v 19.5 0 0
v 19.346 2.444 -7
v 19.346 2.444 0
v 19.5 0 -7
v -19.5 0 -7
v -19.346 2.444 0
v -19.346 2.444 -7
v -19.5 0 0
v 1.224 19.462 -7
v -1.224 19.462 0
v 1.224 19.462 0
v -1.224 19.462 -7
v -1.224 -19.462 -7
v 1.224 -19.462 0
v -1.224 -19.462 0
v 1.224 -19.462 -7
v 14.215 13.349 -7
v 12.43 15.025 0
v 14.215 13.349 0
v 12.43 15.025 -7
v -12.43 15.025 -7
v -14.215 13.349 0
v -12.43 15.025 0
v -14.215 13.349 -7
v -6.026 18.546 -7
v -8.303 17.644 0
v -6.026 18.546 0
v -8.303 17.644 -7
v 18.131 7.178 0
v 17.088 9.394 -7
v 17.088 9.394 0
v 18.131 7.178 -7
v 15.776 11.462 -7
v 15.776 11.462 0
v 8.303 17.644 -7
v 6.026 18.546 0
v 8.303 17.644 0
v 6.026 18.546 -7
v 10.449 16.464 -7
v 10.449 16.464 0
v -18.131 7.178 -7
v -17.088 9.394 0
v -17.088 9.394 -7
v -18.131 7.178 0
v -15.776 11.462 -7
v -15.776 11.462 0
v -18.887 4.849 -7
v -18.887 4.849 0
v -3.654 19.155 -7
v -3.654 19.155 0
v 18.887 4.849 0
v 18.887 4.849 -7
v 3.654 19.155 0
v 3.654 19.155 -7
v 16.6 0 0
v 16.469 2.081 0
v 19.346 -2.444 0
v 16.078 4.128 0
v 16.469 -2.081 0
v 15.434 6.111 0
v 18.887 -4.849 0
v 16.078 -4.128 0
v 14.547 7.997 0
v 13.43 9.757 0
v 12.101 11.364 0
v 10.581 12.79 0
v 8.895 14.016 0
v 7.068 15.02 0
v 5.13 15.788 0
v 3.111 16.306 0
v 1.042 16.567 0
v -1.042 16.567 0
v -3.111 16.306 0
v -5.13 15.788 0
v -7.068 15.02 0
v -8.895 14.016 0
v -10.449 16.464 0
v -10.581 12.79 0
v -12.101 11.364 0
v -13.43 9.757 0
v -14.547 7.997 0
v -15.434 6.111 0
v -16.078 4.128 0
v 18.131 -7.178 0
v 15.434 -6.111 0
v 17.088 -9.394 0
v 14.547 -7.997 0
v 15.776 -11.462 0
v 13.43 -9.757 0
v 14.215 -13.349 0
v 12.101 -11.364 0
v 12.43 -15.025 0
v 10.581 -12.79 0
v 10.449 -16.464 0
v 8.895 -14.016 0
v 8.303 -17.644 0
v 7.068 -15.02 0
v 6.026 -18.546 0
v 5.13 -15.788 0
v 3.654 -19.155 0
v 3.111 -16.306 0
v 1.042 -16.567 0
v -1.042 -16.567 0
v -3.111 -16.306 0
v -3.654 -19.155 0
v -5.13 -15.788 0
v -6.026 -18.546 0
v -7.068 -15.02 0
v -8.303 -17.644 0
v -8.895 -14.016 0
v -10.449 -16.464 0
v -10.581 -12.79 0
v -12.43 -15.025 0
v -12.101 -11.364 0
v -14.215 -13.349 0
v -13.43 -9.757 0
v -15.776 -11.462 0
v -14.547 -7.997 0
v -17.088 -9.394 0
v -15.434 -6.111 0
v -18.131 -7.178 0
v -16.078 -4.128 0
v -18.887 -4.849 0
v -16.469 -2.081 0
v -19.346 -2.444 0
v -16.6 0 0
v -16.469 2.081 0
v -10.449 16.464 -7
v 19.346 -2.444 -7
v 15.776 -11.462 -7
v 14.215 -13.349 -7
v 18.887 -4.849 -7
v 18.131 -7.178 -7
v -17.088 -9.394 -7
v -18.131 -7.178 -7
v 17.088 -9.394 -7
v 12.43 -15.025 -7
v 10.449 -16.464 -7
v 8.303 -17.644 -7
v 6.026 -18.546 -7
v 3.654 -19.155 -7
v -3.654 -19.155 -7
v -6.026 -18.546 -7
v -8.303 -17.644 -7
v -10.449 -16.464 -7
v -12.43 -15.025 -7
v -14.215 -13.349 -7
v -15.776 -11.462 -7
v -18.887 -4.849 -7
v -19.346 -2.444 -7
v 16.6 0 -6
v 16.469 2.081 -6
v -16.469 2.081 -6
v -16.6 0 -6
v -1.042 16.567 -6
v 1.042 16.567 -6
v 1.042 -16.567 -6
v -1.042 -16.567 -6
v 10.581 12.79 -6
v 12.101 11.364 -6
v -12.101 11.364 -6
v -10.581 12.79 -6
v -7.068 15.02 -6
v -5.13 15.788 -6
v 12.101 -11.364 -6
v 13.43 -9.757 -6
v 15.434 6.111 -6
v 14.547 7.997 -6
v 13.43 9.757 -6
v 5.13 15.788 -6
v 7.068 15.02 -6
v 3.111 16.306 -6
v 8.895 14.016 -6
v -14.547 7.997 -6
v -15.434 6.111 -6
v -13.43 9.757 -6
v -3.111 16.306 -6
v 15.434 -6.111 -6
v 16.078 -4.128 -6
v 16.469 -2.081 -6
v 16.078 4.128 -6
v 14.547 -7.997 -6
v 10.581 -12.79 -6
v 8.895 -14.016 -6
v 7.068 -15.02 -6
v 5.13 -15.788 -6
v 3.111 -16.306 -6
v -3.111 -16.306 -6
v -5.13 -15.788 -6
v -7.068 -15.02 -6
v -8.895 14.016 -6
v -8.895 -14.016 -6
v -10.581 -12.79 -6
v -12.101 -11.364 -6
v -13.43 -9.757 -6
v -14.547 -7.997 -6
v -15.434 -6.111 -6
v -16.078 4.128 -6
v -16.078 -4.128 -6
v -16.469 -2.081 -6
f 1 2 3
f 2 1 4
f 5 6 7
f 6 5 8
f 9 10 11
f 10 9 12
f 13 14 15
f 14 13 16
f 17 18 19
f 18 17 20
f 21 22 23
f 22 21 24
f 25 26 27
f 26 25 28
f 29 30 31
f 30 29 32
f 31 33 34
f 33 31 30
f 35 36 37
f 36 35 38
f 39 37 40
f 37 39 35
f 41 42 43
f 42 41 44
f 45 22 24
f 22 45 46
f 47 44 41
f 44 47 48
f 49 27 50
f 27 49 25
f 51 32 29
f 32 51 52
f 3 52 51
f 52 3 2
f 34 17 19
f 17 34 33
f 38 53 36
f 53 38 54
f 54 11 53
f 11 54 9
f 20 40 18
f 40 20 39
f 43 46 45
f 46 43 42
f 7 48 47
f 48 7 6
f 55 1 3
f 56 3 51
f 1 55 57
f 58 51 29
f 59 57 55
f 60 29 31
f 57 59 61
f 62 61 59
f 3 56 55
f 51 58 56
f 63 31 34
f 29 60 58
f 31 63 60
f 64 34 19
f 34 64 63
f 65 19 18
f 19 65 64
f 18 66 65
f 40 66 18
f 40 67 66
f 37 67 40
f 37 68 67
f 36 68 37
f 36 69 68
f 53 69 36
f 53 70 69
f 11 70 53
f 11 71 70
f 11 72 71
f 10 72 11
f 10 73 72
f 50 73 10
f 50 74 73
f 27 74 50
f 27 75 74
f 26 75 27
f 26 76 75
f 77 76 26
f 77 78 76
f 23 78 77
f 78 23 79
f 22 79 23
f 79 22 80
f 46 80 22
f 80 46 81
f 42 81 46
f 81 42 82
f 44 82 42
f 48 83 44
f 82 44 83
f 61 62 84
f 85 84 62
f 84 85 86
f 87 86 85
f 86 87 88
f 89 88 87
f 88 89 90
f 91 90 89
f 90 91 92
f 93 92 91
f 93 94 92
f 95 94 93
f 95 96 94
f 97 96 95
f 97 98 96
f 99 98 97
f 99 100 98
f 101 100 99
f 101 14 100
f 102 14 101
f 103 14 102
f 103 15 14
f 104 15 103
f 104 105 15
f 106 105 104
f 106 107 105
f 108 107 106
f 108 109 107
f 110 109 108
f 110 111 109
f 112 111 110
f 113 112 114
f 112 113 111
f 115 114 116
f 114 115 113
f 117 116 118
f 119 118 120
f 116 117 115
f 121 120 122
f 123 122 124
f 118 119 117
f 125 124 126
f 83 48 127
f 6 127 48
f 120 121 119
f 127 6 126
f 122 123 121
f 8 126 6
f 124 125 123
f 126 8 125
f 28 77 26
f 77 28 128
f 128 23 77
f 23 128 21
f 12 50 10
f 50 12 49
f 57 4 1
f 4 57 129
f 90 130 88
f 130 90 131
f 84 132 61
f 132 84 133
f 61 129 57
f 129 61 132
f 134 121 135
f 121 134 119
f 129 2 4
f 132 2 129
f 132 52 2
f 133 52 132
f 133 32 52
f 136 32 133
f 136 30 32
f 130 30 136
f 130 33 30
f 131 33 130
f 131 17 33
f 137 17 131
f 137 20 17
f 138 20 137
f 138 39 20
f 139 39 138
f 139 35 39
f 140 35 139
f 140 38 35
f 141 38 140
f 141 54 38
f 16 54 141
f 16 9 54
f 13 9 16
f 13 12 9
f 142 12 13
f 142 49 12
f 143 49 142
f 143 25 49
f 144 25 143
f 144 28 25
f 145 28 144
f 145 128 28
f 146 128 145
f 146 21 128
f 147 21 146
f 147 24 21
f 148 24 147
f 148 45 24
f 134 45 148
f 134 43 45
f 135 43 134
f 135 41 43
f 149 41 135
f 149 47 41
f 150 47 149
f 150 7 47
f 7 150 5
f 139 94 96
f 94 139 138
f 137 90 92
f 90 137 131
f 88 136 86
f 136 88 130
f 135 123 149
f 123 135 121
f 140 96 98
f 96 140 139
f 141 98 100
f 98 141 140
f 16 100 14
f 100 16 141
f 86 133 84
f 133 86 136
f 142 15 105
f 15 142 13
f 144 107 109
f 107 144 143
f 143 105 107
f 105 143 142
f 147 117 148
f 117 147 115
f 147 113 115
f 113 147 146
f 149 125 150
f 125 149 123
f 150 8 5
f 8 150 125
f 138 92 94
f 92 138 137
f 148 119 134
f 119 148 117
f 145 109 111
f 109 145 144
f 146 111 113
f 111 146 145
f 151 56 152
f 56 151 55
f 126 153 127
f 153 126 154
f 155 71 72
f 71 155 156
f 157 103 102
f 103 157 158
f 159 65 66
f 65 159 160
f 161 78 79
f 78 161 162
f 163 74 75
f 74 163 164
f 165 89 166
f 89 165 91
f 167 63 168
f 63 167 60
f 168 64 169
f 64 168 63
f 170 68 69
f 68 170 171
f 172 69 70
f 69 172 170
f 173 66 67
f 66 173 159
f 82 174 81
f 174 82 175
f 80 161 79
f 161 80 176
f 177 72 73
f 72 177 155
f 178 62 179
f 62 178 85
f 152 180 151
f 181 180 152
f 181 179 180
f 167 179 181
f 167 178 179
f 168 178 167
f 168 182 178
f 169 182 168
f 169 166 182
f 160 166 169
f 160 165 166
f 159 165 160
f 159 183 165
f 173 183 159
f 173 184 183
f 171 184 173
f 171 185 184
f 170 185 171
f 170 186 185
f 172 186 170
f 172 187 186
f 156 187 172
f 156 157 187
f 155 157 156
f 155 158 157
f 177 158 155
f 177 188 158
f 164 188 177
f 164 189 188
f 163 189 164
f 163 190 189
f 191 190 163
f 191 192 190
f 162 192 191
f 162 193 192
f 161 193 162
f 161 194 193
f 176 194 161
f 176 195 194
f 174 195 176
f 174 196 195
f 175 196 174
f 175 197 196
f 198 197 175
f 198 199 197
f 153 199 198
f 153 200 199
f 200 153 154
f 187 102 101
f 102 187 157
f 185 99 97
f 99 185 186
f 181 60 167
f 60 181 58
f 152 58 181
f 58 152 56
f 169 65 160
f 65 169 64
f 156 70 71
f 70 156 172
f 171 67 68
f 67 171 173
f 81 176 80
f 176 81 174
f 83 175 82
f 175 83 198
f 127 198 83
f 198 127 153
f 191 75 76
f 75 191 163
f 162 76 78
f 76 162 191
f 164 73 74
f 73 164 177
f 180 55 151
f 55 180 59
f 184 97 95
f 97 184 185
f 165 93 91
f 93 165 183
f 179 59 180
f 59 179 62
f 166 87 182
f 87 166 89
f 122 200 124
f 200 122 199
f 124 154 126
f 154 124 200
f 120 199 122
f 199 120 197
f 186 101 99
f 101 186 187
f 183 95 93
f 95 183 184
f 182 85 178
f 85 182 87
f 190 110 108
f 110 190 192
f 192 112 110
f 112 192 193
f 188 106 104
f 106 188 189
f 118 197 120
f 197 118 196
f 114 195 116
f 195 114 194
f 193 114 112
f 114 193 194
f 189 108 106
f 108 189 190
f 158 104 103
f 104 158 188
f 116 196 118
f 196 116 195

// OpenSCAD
$fn = 50;


difference() {
	union() {
		translate(v = [0, 0, -7.0000000000]) {
			cylinder(h = 7, r = 19.5000000000);
		}
	}
	union() {
		#translate(v = [0, 0, -6.0000000000]) {
			cylinder(h = 6, r = 16.6000000000);
		}
	}
}
